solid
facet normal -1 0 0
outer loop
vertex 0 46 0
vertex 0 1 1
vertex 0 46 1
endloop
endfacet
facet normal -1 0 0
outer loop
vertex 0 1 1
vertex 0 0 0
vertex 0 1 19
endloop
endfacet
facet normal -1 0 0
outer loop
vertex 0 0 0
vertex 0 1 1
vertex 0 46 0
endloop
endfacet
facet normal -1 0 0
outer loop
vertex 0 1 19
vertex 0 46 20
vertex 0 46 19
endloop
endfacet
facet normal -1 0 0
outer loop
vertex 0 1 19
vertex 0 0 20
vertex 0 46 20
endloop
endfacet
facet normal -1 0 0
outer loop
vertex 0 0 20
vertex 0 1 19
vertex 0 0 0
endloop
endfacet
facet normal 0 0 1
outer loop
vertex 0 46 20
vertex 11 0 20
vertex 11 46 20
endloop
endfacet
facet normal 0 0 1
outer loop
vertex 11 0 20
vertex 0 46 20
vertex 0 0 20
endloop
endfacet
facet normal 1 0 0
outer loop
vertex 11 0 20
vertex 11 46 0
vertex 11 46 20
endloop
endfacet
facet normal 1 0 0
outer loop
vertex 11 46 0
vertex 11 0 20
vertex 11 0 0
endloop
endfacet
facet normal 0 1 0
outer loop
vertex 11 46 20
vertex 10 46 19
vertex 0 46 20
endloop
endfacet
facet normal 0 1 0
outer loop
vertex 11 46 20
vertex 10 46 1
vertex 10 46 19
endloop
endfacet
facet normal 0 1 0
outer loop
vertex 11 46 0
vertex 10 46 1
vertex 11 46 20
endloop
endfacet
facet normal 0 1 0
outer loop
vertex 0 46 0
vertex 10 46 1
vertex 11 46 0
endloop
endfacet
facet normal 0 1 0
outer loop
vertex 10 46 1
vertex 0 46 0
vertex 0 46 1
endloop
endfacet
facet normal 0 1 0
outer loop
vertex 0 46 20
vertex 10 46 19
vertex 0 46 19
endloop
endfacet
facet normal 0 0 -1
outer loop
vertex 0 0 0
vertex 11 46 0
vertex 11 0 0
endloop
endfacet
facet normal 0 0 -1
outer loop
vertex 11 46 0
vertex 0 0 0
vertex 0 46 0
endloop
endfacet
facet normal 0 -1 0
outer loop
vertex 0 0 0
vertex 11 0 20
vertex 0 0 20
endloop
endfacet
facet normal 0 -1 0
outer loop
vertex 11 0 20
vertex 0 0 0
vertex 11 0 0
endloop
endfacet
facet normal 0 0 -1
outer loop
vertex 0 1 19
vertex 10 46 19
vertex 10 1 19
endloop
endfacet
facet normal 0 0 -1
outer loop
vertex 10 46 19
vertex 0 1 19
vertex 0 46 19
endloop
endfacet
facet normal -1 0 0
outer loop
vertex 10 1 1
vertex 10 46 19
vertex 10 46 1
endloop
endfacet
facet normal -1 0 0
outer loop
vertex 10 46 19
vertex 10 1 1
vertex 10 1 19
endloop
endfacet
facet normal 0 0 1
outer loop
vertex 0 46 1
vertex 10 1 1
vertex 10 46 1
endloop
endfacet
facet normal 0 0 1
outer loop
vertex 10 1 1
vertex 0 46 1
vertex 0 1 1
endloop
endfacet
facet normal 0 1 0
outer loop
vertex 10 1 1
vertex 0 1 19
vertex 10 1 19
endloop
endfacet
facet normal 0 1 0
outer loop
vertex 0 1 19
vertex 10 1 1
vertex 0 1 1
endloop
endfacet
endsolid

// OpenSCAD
module holder_for_bluetooth() {
    difference() {
        cube([1.1, 4.5+0.1, 1.8+0.2]);
        translate([-0.1, 0.1, 0.1]) cube([1.1, 4.5+0.1, 1.8]);
    }
}

$fn=300;
scale([10, 10, 10]) holder_for_bluetooth();
